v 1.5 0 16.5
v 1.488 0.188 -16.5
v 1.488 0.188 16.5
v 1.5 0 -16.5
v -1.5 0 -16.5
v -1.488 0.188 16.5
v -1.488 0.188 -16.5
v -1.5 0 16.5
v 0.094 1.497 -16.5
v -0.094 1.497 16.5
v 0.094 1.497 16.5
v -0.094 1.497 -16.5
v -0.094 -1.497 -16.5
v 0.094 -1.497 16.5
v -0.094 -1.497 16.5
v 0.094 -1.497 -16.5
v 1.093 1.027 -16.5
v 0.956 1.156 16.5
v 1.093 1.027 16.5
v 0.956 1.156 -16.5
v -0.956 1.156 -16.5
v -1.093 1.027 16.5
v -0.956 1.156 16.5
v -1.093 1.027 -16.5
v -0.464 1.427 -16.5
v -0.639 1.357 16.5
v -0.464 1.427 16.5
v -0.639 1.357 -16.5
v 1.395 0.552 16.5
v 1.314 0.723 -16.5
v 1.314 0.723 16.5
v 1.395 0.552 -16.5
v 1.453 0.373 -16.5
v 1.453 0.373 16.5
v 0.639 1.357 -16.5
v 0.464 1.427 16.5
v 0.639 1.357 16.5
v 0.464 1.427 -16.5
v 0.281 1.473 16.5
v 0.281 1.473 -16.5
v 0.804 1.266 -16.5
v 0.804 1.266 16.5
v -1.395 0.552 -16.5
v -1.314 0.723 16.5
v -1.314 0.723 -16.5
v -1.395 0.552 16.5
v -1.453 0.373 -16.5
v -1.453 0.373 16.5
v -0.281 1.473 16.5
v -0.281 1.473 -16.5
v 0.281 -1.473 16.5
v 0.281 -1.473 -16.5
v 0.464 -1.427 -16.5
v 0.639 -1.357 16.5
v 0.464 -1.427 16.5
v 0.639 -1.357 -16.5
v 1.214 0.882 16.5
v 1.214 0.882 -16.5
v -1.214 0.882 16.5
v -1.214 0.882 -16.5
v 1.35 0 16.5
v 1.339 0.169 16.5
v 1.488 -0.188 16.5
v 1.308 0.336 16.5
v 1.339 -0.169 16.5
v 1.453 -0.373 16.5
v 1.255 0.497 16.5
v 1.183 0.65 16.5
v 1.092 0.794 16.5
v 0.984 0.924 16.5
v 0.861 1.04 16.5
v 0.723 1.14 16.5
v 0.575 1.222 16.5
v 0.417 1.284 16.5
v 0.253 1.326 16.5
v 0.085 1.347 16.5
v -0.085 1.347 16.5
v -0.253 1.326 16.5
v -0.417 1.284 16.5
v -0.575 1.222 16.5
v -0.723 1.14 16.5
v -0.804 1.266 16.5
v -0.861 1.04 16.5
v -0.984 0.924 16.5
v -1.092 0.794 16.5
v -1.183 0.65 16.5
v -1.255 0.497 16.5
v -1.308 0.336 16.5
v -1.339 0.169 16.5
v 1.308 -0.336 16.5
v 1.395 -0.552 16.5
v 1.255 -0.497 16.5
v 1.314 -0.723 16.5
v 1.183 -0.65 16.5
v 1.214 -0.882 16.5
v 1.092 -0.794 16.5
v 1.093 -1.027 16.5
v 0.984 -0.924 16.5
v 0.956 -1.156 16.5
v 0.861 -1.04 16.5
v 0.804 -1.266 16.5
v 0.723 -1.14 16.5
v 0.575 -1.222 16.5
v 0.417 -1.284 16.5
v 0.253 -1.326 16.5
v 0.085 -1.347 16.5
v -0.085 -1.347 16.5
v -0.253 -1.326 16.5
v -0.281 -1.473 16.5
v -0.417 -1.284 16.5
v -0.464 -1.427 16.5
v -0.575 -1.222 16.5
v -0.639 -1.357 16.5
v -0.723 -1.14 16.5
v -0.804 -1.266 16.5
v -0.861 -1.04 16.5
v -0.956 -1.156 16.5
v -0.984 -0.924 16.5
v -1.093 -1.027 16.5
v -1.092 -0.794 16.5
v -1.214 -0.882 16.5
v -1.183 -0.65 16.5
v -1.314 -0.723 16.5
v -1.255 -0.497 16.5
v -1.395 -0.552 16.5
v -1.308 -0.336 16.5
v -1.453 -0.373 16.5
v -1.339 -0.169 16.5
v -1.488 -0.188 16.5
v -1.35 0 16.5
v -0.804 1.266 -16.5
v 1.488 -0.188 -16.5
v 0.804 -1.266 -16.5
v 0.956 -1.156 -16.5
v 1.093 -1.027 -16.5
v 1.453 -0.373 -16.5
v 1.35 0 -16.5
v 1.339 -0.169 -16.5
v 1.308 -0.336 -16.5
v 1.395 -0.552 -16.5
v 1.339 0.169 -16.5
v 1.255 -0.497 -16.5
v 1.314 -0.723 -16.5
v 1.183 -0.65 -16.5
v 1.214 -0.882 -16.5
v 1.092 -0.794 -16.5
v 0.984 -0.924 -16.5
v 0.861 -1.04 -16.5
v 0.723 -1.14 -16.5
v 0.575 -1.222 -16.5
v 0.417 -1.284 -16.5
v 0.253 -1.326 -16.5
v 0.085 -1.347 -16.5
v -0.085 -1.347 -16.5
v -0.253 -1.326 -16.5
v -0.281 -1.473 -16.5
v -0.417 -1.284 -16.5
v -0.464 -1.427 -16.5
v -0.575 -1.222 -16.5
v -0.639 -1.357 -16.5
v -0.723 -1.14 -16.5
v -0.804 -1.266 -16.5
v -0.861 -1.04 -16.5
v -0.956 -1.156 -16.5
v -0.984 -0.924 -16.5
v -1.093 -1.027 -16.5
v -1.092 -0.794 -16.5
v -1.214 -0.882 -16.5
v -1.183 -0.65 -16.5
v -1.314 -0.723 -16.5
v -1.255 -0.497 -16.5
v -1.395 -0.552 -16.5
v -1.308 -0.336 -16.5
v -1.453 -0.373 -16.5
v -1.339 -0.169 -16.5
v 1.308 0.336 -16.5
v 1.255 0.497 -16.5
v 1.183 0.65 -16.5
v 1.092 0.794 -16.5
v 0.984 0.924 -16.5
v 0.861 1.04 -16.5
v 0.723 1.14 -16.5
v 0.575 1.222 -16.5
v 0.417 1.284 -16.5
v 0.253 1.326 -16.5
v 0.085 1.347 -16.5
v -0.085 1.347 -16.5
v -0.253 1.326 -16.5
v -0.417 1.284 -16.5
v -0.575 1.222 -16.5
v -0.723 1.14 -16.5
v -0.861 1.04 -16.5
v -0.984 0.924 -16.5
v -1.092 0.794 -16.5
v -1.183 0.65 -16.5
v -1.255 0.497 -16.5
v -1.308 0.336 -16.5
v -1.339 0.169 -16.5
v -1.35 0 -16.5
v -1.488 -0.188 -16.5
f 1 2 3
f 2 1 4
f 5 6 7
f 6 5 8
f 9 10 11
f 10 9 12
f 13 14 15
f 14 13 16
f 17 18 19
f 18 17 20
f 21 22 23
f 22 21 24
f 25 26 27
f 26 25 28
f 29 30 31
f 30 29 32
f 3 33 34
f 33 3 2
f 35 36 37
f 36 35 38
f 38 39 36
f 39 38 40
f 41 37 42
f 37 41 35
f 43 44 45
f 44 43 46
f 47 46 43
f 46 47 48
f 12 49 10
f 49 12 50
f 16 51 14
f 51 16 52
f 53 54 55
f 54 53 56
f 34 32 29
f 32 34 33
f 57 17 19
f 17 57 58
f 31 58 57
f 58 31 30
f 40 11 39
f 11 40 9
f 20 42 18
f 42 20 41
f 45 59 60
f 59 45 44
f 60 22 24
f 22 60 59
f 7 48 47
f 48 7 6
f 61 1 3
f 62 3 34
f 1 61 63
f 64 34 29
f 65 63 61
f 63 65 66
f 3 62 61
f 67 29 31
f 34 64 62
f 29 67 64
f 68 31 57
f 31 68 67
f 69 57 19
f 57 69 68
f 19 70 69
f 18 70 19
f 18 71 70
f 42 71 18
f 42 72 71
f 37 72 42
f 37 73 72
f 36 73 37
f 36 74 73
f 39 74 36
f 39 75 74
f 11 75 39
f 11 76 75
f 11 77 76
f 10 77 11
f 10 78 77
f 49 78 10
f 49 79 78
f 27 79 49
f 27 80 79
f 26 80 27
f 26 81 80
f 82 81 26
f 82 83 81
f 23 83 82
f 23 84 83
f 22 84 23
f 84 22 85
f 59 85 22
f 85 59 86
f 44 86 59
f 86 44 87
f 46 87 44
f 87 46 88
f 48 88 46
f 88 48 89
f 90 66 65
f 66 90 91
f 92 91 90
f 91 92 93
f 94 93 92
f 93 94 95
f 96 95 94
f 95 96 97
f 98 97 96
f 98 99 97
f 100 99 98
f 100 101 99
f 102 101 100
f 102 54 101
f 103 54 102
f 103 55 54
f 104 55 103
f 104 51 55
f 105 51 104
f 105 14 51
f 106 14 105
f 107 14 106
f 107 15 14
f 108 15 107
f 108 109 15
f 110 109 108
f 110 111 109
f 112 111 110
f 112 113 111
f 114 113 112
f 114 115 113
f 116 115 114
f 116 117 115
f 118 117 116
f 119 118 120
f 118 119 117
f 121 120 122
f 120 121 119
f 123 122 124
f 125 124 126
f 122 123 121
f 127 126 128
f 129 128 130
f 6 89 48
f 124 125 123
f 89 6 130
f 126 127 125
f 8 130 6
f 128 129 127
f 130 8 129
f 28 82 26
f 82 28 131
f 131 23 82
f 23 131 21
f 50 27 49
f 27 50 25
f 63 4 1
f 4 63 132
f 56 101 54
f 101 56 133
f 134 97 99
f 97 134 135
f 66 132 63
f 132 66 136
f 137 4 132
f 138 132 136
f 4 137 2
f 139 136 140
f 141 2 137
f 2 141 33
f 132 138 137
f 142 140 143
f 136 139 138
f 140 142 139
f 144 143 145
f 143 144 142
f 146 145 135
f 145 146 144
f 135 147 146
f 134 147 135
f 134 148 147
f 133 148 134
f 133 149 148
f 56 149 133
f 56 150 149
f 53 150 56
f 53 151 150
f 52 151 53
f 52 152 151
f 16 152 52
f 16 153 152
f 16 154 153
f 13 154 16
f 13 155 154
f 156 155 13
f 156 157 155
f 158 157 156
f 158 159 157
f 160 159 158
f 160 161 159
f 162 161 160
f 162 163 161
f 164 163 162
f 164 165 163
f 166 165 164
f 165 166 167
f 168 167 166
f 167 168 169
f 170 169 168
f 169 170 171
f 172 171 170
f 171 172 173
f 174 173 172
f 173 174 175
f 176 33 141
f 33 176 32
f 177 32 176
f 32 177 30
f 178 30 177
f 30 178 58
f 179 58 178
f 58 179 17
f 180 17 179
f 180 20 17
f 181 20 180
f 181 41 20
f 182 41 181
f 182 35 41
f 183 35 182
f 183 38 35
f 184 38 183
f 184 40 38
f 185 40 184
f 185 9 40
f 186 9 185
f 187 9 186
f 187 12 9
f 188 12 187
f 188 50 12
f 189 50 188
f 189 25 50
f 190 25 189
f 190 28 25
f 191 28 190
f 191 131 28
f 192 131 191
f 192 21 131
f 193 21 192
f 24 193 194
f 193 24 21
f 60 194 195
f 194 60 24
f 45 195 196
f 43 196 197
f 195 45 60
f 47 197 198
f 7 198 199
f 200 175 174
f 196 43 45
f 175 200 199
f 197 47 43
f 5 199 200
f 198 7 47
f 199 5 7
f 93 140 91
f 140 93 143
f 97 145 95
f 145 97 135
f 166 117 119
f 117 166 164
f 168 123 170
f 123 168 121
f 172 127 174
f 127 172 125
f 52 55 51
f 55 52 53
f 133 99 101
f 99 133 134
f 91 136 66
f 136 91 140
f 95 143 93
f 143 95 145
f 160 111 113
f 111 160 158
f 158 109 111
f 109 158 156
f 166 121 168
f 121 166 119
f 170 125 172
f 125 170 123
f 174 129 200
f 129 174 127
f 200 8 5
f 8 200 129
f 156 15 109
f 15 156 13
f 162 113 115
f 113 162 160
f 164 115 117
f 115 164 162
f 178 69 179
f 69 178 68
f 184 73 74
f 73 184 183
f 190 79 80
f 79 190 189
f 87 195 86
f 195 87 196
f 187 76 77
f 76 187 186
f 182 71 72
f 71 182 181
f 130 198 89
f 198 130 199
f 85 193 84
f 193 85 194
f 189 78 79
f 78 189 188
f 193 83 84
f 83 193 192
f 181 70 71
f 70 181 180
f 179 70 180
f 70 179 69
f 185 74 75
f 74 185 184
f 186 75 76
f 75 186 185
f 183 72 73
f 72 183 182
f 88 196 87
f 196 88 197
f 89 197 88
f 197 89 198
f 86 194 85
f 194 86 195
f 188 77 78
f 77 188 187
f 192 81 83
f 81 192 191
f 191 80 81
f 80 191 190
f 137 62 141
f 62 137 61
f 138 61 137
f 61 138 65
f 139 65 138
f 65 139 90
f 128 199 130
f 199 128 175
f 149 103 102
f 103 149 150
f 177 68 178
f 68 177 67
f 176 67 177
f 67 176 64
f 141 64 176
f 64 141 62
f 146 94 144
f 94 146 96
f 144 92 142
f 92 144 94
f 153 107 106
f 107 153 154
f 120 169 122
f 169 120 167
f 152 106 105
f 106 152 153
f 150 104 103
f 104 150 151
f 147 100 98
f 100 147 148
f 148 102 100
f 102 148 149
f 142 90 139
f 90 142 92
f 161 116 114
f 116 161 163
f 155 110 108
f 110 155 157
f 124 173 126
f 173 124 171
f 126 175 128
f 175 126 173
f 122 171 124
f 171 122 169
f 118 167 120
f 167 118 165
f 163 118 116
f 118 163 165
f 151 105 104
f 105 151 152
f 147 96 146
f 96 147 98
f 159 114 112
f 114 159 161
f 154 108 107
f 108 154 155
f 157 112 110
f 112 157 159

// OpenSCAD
$fn = 50;


difference() {
	union() {
		translate(v = [0, 0, -16.5000000000]) {
			cylinder(h = 33, r = 1.5000000000);
		}
	}
	union() {
		translate(v = [0, 0, -100.0000000000]) {
			cylinder(h = 200, r = 1.3500000000);
		}
	}
}
